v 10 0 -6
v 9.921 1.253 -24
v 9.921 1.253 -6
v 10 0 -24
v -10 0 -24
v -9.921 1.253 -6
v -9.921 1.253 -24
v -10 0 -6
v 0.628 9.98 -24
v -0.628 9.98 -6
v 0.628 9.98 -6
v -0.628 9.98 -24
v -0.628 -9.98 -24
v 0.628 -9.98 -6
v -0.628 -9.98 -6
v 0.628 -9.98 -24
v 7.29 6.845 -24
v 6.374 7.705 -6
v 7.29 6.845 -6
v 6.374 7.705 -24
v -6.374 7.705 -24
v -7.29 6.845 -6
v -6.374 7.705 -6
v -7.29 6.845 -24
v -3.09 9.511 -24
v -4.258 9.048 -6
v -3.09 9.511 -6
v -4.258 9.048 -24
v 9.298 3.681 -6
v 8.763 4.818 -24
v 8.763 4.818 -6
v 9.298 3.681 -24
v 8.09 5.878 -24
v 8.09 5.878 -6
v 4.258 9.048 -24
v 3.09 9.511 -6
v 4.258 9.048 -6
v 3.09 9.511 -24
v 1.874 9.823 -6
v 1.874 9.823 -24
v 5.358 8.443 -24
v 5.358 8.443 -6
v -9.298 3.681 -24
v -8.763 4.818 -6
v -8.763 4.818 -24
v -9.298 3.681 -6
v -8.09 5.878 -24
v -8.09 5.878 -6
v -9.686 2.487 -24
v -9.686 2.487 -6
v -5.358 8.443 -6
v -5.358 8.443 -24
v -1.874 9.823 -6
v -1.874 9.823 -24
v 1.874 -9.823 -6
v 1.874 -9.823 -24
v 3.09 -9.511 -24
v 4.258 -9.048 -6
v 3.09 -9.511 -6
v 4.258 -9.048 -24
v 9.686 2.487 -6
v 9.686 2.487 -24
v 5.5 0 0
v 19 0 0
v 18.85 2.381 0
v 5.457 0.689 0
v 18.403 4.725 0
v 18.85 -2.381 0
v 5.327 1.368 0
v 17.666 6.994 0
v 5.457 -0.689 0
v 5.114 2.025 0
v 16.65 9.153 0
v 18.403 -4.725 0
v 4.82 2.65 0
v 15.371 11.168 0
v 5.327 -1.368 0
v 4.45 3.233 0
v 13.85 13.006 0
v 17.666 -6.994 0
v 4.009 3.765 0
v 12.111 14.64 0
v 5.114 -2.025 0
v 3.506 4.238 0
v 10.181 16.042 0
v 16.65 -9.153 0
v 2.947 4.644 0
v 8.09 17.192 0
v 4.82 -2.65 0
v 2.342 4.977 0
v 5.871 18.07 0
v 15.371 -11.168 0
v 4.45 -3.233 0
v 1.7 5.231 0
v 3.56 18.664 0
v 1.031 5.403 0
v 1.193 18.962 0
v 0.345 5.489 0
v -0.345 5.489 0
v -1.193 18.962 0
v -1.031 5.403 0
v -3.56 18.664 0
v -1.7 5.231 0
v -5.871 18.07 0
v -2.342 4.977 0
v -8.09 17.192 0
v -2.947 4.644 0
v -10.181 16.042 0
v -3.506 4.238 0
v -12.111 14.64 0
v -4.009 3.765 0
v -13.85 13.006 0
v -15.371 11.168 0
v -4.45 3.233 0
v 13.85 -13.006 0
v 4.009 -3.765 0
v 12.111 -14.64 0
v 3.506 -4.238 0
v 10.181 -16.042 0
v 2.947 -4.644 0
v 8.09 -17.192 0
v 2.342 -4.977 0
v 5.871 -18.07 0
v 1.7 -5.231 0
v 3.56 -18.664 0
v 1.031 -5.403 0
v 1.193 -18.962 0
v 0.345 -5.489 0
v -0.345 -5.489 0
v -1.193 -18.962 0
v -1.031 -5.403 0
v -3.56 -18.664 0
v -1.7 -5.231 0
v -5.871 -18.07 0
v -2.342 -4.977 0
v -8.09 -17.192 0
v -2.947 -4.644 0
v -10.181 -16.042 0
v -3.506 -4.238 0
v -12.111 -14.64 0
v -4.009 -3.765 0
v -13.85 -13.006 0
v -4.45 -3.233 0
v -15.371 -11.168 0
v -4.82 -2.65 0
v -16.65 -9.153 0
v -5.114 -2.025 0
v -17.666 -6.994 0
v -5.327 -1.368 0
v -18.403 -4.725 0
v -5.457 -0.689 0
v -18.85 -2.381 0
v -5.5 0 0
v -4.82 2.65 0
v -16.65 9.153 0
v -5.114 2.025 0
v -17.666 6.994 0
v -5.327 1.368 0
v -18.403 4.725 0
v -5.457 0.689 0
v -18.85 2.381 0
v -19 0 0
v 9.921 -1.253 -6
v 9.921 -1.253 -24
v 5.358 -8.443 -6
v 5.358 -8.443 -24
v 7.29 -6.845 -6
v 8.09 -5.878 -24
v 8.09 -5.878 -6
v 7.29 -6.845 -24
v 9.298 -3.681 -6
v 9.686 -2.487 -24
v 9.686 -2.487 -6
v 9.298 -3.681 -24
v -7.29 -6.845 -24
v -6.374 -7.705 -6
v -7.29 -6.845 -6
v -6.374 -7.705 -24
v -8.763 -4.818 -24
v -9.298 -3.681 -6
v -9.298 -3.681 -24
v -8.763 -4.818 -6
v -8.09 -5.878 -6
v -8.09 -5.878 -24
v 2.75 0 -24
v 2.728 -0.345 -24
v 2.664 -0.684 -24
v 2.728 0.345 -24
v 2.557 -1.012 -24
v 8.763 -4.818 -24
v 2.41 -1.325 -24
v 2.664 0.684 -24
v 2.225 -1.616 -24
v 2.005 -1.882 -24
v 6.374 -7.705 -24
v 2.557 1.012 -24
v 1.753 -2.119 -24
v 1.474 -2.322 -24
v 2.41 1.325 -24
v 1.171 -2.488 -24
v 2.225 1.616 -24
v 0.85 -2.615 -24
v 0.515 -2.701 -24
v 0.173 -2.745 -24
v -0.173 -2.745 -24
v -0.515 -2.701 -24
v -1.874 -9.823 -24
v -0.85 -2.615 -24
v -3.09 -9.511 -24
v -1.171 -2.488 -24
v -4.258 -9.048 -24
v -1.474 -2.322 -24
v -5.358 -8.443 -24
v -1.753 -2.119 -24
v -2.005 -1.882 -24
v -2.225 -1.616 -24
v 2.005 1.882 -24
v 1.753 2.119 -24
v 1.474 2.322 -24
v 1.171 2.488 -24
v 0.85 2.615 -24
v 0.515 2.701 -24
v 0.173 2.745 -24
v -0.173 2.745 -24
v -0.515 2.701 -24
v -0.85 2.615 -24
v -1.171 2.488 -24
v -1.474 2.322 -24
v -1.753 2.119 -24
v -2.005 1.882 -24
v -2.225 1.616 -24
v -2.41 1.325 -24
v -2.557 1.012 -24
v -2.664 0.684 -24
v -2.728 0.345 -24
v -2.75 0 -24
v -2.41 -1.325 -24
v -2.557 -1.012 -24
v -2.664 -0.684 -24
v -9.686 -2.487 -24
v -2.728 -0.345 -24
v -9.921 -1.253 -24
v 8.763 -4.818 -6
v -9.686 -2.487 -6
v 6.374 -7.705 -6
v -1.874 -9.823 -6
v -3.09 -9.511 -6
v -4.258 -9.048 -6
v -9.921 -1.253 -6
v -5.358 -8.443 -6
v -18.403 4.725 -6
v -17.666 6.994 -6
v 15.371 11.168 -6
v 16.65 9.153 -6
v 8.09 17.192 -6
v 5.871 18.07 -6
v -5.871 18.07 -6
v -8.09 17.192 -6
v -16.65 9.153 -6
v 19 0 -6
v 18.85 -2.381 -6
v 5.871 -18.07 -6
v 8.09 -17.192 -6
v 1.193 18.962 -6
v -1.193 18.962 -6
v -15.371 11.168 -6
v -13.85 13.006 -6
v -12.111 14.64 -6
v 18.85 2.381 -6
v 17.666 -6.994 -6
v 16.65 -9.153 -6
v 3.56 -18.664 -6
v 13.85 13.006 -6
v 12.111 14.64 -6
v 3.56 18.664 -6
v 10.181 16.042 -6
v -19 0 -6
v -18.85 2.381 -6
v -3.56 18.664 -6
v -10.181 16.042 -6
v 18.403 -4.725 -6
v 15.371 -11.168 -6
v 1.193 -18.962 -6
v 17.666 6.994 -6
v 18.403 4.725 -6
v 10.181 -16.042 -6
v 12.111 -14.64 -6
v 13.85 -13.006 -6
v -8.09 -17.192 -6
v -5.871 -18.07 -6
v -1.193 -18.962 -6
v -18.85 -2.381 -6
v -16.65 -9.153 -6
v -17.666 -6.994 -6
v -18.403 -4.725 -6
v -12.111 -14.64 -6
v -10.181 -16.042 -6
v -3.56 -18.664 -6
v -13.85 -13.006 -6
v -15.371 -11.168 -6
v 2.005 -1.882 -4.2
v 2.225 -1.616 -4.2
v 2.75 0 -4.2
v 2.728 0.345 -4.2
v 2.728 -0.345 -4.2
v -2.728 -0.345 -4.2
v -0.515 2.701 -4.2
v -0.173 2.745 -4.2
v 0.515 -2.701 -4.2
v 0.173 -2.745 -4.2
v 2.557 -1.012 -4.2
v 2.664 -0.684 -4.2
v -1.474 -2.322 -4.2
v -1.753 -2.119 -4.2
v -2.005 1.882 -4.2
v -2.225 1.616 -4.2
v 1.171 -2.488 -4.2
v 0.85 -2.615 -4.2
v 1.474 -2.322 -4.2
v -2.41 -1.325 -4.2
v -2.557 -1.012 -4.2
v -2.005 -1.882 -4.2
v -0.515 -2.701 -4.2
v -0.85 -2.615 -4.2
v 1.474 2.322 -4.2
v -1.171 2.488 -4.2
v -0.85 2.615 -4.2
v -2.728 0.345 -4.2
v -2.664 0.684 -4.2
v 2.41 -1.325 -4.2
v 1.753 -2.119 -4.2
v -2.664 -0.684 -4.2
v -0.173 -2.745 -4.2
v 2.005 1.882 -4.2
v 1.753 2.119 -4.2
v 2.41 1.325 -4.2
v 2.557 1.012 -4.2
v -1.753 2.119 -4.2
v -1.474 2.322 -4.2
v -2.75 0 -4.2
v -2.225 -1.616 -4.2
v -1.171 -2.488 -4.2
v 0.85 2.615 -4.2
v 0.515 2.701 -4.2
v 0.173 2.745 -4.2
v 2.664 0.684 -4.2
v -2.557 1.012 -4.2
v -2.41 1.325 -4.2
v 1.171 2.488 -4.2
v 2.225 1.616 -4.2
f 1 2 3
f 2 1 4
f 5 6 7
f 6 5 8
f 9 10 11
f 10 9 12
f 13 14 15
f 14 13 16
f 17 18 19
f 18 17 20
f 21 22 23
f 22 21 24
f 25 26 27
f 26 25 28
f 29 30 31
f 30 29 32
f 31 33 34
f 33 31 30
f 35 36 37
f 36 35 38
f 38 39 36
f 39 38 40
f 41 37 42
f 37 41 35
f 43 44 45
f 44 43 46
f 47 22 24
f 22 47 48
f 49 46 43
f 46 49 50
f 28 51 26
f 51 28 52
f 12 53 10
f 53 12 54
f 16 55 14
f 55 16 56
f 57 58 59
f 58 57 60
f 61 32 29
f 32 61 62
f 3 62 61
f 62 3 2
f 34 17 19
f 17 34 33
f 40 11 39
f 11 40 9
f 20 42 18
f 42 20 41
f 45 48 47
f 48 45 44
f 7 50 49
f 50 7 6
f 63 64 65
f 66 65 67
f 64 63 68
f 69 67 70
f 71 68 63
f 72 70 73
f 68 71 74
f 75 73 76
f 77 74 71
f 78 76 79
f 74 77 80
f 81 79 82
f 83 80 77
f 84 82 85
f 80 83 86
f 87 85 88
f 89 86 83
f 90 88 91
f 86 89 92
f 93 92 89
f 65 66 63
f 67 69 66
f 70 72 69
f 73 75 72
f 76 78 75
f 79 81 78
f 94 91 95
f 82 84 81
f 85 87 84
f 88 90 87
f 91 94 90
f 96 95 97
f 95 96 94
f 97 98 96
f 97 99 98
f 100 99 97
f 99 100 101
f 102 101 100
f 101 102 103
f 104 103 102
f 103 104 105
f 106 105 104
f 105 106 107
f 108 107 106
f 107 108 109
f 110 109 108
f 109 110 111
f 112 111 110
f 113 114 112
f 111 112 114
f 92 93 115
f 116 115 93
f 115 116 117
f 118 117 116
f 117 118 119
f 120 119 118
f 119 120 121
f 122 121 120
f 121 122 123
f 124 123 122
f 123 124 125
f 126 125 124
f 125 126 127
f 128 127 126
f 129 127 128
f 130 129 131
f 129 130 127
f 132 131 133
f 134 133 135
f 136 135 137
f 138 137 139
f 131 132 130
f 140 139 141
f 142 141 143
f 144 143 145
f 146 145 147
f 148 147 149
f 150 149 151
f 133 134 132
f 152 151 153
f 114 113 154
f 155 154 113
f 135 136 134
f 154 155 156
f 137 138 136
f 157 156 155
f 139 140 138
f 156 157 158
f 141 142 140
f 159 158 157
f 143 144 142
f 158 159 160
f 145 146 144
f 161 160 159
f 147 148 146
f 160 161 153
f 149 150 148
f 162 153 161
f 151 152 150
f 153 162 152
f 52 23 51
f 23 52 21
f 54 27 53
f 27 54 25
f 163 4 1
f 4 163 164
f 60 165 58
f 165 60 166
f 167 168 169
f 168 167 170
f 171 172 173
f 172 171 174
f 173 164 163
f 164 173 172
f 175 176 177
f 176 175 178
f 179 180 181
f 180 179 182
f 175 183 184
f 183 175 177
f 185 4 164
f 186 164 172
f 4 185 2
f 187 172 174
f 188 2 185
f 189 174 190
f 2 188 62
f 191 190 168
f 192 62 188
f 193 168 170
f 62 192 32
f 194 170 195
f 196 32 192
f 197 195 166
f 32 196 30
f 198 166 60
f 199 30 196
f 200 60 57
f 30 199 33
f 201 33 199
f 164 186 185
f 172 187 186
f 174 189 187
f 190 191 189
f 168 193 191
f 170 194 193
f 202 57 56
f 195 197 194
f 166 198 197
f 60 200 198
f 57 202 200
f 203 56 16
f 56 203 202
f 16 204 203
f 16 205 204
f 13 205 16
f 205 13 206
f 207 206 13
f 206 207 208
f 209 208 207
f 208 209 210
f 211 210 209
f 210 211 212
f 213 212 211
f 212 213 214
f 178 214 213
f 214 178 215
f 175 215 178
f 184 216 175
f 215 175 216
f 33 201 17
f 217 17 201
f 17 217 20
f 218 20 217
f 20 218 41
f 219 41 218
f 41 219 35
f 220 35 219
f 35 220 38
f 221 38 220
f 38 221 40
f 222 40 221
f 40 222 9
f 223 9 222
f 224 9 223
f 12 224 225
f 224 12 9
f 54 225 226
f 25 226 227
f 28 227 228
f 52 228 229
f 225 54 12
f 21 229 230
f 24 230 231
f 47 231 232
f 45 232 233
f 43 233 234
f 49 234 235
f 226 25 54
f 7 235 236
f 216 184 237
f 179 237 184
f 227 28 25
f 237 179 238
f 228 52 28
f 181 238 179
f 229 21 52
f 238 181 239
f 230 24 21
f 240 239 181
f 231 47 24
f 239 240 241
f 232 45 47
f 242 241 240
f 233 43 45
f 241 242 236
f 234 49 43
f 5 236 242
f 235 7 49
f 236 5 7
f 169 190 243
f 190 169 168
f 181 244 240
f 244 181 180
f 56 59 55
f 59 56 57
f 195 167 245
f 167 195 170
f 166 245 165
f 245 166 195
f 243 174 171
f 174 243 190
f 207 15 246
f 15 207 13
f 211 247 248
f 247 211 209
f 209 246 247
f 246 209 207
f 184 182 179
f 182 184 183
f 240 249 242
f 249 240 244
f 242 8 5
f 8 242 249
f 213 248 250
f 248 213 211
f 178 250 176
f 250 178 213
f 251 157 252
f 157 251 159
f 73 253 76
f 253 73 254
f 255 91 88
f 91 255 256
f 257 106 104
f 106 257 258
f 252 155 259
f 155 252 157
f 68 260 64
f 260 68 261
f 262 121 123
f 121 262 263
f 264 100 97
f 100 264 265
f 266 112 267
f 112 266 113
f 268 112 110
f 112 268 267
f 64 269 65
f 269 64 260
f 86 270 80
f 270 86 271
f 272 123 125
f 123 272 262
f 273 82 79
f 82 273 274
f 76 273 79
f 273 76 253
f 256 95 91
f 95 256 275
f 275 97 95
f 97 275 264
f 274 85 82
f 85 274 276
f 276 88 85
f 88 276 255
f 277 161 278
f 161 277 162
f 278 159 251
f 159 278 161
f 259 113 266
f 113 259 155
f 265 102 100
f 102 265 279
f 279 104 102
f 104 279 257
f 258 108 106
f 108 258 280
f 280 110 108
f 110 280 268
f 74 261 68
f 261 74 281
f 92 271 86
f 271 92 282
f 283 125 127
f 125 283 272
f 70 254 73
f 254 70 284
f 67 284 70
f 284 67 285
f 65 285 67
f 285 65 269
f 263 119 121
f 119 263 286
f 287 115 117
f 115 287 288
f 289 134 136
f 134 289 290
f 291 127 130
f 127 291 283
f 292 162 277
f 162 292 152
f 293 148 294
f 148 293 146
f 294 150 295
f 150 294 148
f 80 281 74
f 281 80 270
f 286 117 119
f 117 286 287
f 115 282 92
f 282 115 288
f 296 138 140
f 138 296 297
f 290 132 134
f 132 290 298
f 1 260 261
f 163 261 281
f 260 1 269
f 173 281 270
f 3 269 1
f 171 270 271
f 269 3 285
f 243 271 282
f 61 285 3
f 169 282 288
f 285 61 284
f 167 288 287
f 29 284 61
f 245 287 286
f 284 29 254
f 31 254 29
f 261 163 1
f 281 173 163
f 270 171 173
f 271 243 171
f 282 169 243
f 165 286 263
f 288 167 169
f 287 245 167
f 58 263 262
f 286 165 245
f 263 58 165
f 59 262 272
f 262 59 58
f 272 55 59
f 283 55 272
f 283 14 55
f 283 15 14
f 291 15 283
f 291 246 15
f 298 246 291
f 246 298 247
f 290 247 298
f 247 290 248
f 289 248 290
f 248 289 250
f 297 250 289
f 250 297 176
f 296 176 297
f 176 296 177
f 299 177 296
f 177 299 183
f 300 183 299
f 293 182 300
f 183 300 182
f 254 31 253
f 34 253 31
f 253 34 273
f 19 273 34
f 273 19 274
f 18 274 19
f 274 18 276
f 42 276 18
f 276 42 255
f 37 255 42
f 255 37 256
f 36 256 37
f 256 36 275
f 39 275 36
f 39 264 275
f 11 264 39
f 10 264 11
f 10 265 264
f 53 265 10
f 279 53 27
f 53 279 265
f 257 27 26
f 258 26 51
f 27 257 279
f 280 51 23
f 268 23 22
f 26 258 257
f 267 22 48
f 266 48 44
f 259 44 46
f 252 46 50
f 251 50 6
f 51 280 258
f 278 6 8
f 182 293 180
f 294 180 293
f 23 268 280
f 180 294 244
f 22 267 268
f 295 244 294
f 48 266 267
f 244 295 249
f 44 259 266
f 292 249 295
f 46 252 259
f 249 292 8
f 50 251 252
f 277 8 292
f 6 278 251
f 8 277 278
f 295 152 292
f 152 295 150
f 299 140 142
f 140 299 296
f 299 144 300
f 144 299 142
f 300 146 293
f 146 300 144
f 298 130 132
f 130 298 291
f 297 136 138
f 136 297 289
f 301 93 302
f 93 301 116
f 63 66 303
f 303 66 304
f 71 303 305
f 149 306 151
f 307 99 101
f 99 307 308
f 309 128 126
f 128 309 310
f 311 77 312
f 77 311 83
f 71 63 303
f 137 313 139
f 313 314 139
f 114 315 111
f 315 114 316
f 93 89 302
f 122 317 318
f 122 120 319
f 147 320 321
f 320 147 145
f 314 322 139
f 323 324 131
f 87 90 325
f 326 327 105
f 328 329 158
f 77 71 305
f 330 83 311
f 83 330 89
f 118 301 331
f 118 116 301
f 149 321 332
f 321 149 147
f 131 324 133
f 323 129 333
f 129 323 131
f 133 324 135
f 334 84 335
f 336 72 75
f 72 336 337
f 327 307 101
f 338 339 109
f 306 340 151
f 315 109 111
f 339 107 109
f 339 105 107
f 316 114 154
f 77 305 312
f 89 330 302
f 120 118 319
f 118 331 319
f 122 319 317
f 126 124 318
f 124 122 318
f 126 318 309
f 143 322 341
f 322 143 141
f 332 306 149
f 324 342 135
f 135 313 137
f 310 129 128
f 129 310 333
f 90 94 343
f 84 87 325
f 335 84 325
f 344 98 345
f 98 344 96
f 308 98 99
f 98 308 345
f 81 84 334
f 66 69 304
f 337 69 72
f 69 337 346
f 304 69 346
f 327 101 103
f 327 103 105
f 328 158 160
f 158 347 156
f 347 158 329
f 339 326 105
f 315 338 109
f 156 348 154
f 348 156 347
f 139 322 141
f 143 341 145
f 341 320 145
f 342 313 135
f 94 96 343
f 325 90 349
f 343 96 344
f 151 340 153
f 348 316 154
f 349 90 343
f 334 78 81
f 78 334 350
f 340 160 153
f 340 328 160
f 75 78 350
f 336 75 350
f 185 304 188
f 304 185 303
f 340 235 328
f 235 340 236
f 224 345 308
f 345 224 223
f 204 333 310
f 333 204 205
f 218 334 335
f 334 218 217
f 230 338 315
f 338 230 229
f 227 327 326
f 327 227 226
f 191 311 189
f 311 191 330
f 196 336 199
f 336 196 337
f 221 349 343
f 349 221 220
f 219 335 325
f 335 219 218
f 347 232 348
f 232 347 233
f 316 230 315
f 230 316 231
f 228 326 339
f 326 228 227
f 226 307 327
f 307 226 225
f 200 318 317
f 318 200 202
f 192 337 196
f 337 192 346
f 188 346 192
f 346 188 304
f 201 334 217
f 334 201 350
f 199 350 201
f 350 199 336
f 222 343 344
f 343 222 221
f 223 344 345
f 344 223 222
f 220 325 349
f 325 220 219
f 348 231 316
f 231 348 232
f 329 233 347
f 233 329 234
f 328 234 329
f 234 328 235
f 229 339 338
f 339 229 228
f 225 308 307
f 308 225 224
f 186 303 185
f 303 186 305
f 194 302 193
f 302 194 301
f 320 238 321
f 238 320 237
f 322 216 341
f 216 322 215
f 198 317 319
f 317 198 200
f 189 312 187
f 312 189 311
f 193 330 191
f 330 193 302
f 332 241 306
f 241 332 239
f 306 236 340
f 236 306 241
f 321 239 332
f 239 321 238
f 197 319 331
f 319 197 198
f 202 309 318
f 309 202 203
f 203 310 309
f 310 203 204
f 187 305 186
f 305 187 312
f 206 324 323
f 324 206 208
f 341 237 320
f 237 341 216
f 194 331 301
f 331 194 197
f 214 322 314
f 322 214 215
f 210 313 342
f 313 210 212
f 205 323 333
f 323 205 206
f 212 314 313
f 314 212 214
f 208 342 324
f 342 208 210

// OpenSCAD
$fn = 50;


difference() {
	union() {
		translate(v = [0, 0, -24.0000000000]) {
			cylinder(h = 24, r = 10.0000000000);
		}
		translate(v = [0, 0, -6.0000000000]) {
			cylinder(h = 6, r = 19.0000000000);
		}
	}
	union() {
		translate(v = [0, 0, 0]) {
			rotate(a = [0, 0, 0]) {
				difference() {
					union() {
						#translate(v = [0, 0, -24.0000000000]) {
							cylinder(h = 24, r = 2.2500000000);
						}
						#translate(v = [0, 0, -4.2000000000]) {
							cylinder(h = 4.2000000000, r = 10.0000000000, r1 = 2.7500000000, r2 = 5.5000000000);
						}
						#translate(v = [0, 0, -24.0000000000]) {
							cylinder(h = 24, r = 2.7500000000);
						}
						#translate(v = [0, 0, -24.0000000000]) {
							cylinder(h = 24, r = 2.2500000000);
						}
					}
					union();
				}
			}
		}
	}
}
